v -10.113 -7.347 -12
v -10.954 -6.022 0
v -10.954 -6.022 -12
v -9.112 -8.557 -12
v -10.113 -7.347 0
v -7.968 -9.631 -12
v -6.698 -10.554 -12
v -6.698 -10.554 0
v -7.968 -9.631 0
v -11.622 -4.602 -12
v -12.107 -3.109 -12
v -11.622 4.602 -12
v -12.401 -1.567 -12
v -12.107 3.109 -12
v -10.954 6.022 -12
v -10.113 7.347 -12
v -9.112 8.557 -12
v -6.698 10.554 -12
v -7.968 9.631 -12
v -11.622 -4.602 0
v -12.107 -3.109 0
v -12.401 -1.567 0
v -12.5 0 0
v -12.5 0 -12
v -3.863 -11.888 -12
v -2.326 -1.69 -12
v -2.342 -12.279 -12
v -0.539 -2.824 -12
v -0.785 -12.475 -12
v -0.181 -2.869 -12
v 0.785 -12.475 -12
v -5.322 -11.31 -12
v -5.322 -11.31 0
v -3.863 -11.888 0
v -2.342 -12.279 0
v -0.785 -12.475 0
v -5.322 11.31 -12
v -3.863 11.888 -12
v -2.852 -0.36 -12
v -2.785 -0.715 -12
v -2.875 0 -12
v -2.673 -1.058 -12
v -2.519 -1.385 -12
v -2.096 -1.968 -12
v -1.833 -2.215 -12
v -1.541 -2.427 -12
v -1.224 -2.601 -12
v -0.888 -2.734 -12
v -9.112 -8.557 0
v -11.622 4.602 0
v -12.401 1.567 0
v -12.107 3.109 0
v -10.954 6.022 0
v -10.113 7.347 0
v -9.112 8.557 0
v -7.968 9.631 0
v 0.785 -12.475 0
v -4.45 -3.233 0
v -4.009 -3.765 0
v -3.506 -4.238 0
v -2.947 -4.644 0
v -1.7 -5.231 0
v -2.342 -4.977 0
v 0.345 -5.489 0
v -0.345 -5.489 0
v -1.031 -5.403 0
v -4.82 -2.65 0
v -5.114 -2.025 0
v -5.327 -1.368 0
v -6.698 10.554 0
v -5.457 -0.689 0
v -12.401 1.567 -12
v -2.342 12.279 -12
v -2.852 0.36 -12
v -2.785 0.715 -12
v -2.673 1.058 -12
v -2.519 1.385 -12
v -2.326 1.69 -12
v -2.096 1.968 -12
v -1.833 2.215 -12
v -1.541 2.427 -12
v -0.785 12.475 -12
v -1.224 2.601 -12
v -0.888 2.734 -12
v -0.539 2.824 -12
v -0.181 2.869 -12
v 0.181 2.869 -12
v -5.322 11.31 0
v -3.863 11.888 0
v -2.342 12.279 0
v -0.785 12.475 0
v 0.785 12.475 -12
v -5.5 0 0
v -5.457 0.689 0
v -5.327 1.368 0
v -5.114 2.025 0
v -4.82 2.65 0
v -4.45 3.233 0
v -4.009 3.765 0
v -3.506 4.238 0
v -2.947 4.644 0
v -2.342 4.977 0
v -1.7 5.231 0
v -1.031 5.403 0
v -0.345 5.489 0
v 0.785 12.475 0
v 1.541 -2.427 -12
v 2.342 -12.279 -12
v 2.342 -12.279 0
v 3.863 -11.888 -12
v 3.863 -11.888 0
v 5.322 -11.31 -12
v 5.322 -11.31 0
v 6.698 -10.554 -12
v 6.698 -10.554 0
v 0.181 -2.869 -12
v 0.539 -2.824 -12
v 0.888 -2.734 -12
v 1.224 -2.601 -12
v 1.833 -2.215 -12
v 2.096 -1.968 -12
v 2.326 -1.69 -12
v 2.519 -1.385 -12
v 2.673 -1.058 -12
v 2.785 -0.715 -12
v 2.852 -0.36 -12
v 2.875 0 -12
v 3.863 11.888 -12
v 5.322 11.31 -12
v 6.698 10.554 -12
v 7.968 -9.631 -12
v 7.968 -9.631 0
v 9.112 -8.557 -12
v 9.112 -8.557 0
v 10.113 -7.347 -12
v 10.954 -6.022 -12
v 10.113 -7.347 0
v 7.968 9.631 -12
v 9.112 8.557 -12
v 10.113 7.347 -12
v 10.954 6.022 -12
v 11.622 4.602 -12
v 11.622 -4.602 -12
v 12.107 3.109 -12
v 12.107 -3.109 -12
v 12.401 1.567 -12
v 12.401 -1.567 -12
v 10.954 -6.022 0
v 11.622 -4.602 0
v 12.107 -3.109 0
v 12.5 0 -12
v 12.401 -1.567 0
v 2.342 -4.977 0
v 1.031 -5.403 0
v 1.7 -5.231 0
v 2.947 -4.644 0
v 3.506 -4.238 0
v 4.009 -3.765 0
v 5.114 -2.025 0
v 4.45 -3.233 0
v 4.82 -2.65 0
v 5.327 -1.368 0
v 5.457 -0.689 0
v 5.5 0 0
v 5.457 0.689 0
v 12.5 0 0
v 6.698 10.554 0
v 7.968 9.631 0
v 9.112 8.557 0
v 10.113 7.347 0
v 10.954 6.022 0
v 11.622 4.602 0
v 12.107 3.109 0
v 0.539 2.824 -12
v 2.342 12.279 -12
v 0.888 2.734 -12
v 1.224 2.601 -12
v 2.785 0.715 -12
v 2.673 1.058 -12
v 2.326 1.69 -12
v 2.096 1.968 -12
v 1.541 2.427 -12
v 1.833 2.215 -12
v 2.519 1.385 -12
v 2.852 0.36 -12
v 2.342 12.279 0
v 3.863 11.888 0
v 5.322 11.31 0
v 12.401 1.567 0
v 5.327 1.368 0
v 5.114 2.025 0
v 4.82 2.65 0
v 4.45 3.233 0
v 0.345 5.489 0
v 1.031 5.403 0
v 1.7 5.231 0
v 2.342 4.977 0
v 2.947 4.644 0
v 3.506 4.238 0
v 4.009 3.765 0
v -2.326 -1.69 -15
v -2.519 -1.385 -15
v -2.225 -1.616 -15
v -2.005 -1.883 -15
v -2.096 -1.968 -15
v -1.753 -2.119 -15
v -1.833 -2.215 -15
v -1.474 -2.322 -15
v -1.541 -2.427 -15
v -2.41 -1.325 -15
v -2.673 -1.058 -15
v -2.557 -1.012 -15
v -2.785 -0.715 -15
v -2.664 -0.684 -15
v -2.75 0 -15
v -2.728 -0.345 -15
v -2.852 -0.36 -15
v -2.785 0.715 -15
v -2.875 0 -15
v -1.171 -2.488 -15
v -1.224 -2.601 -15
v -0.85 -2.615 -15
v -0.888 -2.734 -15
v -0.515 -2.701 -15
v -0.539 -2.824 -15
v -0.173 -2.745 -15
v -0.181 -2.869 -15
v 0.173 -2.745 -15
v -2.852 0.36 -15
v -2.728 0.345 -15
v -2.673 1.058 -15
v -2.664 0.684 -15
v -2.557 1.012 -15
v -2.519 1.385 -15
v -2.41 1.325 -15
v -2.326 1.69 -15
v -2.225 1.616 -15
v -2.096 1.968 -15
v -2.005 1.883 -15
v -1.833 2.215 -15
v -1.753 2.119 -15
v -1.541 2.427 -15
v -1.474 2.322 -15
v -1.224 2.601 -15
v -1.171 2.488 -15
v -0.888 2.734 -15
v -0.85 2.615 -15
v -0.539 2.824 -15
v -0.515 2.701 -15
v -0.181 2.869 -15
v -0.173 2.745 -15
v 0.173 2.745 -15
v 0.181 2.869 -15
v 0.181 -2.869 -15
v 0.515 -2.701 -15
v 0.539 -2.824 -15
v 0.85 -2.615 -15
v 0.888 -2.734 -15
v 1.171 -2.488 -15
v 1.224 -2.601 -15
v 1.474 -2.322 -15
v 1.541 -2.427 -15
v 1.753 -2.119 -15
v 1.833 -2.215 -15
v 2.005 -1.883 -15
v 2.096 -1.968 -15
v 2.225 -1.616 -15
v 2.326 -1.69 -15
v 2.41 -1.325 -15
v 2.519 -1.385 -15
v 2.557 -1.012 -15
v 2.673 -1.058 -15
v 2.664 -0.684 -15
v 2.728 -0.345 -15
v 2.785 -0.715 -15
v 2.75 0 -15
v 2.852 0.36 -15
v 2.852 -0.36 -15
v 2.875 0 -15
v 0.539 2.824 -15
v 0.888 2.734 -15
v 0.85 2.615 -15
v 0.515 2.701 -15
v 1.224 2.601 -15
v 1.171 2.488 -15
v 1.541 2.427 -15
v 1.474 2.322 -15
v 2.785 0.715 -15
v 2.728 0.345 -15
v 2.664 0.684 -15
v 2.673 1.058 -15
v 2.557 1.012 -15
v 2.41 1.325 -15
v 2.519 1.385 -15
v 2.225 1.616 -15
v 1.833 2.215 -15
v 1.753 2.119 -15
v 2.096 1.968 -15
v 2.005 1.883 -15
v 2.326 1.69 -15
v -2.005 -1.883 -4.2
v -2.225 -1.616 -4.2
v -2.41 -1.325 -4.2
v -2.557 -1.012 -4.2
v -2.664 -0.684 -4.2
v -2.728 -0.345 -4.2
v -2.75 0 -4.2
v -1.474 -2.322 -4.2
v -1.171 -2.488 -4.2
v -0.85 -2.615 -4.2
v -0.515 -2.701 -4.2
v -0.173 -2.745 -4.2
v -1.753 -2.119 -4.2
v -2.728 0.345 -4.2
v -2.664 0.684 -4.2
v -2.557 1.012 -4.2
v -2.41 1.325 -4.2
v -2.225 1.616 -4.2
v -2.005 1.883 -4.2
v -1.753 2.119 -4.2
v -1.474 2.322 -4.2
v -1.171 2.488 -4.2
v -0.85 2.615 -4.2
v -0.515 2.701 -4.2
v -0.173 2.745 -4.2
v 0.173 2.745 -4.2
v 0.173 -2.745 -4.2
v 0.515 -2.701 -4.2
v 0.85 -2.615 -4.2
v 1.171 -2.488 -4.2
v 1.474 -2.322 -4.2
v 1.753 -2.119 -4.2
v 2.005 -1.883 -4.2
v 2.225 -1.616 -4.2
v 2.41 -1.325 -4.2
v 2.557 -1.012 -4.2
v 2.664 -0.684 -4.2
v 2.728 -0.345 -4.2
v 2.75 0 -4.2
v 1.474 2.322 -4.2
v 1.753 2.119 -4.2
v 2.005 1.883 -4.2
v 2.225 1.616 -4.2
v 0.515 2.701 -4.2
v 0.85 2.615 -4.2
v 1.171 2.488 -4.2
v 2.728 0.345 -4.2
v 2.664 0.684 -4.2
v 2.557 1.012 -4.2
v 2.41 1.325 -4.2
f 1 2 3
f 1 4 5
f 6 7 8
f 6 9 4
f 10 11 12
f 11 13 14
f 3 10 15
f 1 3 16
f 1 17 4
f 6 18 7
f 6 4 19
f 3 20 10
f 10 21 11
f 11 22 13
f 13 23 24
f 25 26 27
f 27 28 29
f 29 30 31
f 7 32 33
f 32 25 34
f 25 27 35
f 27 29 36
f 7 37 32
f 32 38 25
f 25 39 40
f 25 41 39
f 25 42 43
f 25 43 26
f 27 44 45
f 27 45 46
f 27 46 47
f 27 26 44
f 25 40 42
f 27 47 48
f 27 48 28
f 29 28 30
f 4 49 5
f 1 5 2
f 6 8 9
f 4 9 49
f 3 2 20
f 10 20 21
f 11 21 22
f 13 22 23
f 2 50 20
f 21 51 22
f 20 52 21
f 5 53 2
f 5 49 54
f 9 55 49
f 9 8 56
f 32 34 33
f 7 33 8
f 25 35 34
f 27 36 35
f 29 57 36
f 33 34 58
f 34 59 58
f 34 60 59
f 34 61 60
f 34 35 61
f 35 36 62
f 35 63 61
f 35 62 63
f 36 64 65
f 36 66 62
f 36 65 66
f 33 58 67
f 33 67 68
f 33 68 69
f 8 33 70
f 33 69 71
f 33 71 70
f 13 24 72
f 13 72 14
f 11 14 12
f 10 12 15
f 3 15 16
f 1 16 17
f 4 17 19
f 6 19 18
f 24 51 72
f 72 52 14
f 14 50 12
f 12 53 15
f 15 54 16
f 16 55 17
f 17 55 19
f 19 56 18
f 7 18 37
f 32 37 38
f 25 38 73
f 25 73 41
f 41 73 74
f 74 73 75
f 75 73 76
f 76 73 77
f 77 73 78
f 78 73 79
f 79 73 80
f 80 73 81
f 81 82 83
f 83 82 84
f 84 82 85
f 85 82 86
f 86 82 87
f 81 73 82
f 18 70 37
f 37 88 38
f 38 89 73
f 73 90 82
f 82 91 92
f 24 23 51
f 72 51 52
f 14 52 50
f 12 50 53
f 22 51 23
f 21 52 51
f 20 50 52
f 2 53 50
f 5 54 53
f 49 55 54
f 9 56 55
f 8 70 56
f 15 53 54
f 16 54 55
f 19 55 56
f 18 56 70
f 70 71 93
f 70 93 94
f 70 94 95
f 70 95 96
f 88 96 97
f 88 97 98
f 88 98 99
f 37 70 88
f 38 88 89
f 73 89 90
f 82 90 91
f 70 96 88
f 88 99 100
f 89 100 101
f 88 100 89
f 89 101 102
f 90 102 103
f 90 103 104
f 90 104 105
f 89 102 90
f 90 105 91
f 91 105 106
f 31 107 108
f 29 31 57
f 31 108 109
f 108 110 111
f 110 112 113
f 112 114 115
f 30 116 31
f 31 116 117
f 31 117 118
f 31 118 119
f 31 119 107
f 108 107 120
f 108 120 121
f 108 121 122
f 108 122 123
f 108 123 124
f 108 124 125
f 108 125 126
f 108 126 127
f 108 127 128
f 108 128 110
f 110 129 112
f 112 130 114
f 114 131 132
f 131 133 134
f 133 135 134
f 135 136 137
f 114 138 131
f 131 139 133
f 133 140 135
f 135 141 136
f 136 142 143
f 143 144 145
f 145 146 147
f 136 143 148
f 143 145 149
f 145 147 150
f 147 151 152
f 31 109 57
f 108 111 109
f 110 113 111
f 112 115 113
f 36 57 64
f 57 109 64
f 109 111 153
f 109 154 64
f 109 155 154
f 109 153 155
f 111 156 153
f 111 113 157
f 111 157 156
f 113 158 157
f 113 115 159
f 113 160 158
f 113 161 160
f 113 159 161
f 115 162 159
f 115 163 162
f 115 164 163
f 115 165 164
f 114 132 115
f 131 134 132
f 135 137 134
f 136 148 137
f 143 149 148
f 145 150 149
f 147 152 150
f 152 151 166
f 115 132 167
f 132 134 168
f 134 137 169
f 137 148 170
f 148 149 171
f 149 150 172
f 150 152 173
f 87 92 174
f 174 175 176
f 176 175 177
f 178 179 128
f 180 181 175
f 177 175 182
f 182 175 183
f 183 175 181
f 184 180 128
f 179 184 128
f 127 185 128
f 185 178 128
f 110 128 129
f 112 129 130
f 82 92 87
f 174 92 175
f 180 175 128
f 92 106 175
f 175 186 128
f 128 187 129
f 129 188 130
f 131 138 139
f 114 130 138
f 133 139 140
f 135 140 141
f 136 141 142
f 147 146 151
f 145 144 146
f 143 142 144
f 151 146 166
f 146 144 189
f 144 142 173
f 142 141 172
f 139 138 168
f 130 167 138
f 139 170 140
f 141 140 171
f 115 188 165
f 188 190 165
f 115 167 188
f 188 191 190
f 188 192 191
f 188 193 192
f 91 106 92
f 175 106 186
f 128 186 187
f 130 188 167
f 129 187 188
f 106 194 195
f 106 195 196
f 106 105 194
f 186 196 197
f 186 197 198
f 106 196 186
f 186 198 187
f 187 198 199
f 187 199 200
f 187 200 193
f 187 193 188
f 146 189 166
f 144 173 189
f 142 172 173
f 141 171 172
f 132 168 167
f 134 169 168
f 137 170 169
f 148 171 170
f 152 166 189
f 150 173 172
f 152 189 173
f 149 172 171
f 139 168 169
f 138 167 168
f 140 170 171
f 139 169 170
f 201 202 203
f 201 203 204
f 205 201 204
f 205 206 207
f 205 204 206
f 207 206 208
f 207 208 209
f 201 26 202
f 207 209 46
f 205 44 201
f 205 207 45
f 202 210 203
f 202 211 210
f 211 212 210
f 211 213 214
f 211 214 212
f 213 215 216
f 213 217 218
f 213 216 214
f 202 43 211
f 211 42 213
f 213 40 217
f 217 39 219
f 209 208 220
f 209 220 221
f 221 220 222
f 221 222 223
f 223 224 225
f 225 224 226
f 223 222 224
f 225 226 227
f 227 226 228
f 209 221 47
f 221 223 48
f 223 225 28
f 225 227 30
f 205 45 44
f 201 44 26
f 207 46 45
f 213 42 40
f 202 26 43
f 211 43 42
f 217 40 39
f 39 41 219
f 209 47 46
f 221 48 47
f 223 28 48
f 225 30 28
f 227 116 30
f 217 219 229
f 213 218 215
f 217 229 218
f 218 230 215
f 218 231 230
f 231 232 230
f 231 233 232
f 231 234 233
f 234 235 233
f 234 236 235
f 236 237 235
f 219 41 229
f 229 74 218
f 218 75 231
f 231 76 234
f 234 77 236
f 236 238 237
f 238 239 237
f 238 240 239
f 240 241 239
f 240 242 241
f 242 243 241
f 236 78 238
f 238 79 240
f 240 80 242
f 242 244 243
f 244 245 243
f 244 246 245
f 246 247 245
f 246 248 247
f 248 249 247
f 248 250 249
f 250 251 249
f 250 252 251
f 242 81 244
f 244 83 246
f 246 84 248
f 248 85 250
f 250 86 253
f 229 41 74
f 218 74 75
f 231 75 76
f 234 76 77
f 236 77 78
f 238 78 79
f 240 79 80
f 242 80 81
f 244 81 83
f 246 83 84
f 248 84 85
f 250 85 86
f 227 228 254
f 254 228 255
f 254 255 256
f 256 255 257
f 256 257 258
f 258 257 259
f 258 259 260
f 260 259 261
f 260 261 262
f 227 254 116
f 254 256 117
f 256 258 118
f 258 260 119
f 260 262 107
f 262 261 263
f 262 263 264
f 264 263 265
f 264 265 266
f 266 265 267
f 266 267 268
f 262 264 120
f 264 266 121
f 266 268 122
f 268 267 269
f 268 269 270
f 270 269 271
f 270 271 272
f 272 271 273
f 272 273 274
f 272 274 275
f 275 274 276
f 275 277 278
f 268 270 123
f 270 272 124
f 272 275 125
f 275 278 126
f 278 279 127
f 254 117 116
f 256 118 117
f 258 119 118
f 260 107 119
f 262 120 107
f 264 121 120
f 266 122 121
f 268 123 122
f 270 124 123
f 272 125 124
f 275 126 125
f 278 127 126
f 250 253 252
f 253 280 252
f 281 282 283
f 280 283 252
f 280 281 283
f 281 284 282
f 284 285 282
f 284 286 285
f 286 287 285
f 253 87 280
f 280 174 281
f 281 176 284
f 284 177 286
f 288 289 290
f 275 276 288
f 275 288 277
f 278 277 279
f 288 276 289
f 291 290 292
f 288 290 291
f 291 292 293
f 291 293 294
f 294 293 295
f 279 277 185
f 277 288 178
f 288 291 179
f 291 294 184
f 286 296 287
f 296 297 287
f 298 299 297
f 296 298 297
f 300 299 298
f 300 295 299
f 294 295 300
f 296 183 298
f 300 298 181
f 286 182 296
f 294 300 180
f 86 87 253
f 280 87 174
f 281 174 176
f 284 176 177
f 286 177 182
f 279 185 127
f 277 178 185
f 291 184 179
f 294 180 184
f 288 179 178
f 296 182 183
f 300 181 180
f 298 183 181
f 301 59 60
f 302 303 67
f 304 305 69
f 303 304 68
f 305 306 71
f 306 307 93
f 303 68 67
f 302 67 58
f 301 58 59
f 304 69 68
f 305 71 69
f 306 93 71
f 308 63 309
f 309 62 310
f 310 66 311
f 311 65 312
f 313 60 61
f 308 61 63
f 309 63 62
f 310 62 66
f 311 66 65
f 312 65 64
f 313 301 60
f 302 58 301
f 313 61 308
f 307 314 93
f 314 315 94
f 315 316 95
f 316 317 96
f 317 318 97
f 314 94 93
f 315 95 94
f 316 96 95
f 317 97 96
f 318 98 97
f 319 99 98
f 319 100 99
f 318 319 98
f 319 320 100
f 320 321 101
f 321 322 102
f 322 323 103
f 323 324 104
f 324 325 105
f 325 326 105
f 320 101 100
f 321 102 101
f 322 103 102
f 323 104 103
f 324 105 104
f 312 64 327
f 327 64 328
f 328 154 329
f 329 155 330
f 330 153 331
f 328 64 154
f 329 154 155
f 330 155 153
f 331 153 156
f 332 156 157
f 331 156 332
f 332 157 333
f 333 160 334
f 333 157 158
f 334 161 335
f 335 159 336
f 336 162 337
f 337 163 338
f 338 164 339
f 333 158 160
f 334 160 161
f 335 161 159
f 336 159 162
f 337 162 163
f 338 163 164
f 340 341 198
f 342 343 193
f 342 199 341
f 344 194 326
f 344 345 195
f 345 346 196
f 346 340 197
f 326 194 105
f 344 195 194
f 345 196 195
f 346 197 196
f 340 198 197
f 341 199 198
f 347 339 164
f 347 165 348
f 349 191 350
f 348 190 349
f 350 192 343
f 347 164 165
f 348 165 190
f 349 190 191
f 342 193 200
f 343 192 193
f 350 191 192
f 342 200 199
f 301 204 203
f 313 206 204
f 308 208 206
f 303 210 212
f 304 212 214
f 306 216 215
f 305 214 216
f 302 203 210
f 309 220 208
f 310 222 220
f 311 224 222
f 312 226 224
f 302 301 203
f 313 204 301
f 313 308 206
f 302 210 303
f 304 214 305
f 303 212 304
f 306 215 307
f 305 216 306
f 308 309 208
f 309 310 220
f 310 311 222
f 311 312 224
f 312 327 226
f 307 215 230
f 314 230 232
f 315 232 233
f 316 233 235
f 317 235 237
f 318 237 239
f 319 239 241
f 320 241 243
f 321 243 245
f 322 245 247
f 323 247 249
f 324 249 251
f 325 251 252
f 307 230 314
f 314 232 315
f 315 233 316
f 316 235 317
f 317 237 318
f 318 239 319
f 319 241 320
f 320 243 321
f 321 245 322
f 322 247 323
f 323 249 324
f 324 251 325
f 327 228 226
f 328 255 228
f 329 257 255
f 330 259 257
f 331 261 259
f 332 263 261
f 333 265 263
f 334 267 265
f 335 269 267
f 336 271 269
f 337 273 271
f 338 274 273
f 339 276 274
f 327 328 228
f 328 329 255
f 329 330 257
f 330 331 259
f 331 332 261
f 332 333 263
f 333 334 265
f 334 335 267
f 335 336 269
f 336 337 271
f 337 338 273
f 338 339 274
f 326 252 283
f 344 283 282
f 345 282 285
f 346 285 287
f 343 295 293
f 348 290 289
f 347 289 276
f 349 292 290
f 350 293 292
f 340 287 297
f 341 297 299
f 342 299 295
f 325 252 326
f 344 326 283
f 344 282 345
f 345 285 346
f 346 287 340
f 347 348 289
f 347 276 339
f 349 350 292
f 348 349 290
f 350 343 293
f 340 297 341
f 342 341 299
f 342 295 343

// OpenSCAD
$fn = 50;

difference() {
	union() {
		translate(v = [0, 0, -12.0]) {
			cylinder(h = 12, r = 12.5);
		}
		#translate(v = [0, 0, -15.0]) {
			cylinder(h = 15, r = 2.875);
		}
	}
	union() {
		translate(v = [0, 0, 0]) {
			rotate(a = [0, 0, 0]) {
				difference() {
					union() {
						translate(v = [0, 0, -15.0]) {
							cylinder(h = 15, r = 2.25);
						}
						translate(v = [0, 0, -4.2]) {
							cylinder(h = 4.2, r1 = 2.75, r2 = 5.5);
						}
						translate(v = [0, 0, -15.0]) {
							cylinder(h = 15, r = 2.75);
						}
						translate(v = [0, 0, -15.0]) {
							cylinder(h = 15, r = 2.25);
						}
					}
					union();
				}
			}
		}
	}
}
